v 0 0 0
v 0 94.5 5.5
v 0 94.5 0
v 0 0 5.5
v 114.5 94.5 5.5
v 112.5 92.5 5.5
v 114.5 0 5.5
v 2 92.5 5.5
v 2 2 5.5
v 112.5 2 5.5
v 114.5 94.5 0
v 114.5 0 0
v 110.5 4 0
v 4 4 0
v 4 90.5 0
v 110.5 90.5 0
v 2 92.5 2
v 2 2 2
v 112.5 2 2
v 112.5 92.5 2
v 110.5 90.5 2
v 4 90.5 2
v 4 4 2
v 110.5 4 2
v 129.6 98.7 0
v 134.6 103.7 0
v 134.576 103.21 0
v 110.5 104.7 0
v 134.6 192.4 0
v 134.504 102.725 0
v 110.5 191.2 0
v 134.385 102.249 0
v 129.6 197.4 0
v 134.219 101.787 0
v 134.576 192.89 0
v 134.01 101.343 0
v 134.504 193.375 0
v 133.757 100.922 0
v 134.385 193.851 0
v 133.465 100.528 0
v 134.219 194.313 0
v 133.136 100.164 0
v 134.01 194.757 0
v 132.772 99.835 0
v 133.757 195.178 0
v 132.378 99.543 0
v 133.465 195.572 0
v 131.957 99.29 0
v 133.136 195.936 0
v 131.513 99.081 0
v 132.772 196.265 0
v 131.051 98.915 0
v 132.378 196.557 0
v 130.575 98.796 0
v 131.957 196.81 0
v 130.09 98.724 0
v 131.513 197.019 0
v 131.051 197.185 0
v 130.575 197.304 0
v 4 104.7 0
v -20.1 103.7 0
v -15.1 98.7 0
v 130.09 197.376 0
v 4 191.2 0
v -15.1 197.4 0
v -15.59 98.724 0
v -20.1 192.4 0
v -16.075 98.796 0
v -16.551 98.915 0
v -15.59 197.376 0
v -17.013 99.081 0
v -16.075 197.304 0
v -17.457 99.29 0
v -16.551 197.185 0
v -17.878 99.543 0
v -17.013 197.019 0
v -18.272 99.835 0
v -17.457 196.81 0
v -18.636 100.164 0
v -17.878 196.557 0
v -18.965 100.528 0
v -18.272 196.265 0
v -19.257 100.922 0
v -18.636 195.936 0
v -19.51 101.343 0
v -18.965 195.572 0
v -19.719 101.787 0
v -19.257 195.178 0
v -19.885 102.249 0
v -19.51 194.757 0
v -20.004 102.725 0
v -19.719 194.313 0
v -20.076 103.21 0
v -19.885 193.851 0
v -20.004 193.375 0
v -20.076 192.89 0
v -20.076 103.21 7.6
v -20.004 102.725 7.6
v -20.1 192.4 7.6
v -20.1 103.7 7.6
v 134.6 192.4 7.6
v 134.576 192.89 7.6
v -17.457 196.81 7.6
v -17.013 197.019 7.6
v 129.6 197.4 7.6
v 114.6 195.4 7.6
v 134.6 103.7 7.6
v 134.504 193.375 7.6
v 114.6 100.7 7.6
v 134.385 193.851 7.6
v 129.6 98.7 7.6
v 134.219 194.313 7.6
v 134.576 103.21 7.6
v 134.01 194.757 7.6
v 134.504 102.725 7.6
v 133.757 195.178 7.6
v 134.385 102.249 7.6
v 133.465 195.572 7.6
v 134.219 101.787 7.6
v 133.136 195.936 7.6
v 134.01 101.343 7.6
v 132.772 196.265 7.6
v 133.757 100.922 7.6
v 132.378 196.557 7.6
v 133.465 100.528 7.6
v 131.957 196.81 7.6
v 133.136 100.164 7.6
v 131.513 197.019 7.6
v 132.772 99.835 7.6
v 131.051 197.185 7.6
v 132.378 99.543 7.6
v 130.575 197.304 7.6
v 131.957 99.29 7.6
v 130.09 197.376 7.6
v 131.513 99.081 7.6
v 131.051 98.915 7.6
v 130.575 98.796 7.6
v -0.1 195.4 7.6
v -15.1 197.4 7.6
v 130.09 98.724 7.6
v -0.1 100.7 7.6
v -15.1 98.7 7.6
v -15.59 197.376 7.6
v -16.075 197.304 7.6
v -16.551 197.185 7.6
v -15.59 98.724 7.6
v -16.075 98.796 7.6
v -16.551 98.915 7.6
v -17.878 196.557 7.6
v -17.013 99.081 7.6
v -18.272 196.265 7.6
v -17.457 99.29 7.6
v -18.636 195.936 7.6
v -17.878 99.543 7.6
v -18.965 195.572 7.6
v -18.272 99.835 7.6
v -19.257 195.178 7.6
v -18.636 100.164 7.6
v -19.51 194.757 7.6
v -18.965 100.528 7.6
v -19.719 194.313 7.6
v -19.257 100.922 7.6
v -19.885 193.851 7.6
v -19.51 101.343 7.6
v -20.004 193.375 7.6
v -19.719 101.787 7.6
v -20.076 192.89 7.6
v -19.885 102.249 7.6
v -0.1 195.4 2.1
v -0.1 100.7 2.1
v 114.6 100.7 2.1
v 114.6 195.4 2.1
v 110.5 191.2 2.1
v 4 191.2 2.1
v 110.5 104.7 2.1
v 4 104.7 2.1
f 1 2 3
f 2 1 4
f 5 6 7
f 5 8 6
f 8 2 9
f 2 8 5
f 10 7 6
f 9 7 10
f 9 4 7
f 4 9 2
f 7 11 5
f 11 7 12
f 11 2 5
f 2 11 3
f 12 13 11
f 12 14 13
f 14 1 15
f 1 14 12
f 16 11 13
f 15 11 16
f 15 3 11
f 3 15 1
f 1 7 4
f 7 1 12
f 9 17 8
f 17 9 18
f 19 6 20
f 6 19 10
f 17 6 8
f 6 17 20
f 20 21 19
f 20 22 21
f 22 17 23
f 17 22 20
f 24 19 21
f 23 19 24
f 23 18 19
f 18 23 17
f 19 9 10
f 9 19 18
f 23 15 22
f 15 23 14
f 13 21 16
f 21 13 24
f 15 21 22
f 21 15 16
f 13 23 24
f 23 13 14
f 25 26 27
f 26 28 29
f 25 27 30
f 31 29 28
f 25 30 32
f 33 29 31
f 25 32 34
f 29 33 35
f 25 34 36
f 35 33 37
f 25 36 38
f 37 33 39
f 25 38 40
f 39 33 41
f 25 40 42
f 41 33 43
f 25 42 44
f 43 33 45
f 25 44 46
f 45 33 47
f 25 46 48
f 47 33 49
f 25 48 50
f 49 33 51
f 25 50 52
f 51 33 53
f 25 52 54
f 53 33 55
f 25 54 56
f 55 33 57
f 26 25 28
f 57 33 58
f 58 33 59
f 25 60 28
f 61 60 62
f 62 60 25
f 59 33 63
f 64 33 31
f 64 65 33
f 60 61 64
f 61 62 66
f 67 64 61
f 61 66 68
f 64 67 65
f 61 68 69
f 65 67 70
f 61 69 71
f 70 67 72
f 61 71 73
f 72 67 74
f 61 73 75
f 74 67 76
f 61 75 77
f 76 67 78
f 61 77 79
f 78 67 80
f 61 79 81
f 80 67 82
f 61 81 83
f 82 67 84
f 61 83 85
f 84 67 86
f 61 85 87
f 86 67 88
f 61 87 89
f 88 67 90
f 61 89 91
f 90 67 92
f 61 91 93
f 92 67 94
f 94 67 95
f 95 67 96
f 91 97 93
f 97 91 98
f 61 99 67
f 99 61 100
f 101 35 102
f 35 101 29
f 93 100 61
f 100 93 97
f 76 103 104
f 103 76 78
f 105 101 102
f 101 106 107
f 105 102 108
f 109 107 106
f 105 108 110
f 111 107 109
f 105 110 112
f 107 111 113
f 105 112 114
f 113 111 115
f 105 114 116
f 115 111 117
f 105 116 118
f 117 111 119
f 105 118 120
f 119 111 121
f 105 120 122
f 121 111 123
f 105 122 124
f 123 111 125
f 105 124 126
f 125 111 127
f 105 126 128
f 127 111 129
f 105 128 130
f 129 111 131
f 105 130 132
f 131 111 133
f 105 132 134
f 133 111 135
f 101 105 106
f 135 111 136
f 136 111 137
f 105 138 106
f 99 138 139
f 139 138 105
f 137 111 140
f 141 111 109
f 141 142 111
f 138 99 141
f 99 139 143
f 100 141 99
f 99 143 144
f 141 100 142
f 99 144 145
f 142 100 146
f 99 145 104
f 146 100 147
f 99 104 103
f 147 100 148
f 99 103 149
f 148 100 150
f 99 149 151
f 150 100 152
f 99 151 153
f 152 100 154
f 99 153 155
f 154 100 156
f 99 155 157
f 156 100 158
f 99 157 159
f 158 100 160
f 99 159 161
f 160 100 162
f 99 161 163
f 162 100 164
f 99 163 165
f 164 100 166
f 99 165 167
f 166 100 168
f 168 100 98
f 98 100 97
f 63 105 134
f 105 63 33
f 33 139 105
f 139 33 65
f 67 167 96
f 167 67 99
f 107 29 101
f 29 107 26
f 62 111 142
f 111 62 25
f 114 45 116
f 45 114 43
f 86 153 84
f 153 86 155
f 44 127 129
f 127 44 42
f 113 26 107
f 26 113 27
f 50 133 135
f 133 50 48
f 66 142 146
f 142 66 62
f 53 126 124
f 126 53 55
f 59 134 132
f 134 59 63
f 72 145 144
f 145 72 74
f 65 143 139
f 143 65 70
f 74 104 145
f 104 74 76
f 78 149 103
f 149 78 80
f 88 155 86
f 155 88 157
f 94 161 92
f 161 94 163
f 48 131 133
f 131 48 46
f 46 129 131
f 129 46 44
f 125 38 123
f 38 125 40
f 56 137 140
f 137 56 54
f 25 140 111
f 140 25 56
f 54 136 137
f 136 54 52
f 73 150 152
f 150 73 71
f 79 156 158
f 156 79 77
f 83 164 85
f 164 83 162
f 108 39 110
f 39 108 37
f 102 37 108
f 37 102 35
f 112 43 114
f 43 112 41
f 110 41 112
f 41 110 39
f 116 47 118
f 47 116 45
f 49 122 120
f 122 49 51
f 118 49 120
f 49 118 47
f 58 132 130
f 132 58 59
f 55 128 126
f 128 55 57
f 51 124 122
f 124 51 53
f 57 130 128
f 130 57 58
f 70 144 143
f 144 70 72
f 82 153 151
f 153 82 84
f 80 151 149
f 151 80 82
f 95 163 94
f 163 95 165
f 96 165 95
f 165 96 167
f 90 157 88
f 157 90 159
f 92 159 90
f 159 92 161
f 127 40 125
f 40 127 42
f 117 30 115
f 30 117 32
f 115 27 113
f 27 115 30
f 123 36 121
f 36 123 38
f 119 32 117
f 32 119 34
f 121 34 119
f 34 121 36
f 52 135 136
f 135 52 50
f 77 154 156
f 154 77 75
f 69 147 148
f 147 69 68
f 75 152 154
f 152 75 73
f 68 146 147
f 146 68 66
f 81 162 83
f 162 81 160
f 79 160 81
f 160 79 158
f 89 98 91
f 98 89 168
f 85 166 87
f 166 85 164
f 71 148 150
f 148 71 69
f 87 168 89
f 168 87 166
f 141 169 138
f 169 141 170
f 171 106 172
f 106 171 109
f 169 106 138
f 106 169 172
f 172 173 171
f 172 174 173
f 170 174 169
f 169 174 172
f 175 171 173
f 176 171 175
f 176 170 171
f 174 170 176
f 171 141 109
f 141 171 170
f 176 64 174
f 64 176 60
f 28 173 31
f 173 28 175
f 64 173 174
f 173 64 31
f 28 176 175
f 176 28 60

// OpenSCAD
// file: rounded_box.scad
/**
 * Small "library" for creating boxes with rounded edges.
 *
 * Hendrik Busch, 2017-18 (https://github.com/hmbusch)
 *
 */
 
/**
 * Creates a 2D-shape of a box with the given dimensions and rounded edges. 
 * Be sure to increase $fn for nicer edges.
 *
 * @param width
 *          the desired width of the box (default is 10mm)
 * @param depth
 *          the desired depth of the box (default is 10mm)
 * @param height
 *          the desired height of the box (default is 10mm)
 * @param edge_radius
 *          the radius of all the edges on the xy-plane (default is 2mm)
 */  
module box_with_round_edges_2d(width = 10, depth = 10, edge_radius = 2) {
    ed = edge_radius * 2;
    translate([edge_radius, edge_radius, 0]) hull() {
        circle(d = ed);
        translate([width - ed, 0, 0]) circle(d = ed);
        translate([0, depth - ed, 0]) circle(d = ed);
        translate([width - ed, depth - ed, 0]) circle(d = ed);    
    }
}
 
/**
 * Call to create a box with rounded edges (edges will be round on one plane only).
 * Be sure to increase $fn for nicer edges.
 * 
 * @param width
 *          the desired width of the box (default is 10mm)
 * @param depth
 *          the desired depth of the box (default is 10mm)
 * @param height
 *          the desired height of the box (default is 10mm)
 * @param edge_radius
 *          the radius of all the edges on the xy-plane (default is 2mm)
 *
 */
module box_with_round_edges_3d(width = 10, depth = 10, height = 10, edge_radius = 2) {
	linear_extrude(height = height) {
		box_with_round_edges_2d(width, depth, edge_radius);
	}
}

/**
 * Call to create a box with rounded edges (edges will be round on one plane only).
 * Be sure to increase $fn for nicer edges. This module has inputs that resemble
 * those of cube() so that it can act as a drop-in replacement.
 * 
 * @param dimensions
 *          3-value-array with x, y and z dimensions (default is 10x10x10mm).
 * @param edge_radius
 *          the radius of all the edges on the xy-plane (default is 2mm)
 *
 */
module box_with_round_edges_3d(dimensions = [10, 10, 10], edge_radius = 2) {
	linear_extrude(height = dimensions[2]) {
		box_with_round_edges_2d(dimensions[0], dimensions[1], edge_radius);
	}
}
// main file
include <rounded_box.scad>;

Glass_X = 110.5;
Glass_Y = 90.5;
Glass_Z = 3.5;

Wall_Thickness = 2;
Handle_Width = 20;

Holder_X = Glass_X + 2 * Wall_Thickness;
Holder_Y = Glass_Y + 2 * Wall_Thickness;
Holder_Z = Glass_Z + Wall_Thickness;

Cover_Airgap = 0.1;

f = 0.01;
df = 2 * f;

$fn = 64;

module glass() {
    color("brown") #cube([Glass_X, Glass_Y, Glass_Z]);
}

module frame() {
    difference() {
        cube([Holder_X, Holder_Y, Holder_Z]);
        translate([Wall_Thickness, Wall_Thickness, Wall_Thickness])
            cube([Glass_X, Glass_Y, Glass_Z + f]);
        translate([Wall_Thickness * 2, Wall_Thickness * 2, -f])
            cube([Glass_X - 2 * Wall_Thickness, Glass_Y - 2 * Wall_Thickness, Wall_Thickness + df]);
    }
}

Cover_X = Holder_X + 2 * Cover_Airgap + 2 * Handle_Width;
Cover_Y = Holder_Y + 2 * Cover_Airgap + 2 * Wall_Thickness;
Cover_Z = Holder_Z + Cover_Airgap + Wall_Thickness;

module cover_with_handles() {
    difference() {
        box_with_round_edges_3d([Cover_X, Cover_Y, Cover_Z], edge_radius = 5);
        translate([Handle_Width, Wall_Thickness, Wall_Thickness + Cover_Airgap])
            cube([Holder_X + 2 * Cover_Airgap, Holder_Y + 2 * Cover_Airgap, Holder_Z + f]);
        translate([Handle_Width + Cover_Airgap + 2* Wall_Thickness, 3 * Wall_Thickness, -f])
            cube([Holder_X - 4 * Wall_Thickness, Holder_Y - 4 * Wall_Thickness, Wall_Thickness + Cover_Airgap + df]);
    }
}


module assembly() {
    color("gray") frame();
    translate([Wall_Thickness, Wall_Thickness, Wall_Thickness])
        glass();

    translate([-Handle_Width, Cover_Y - Wall_Thickness, Holder_Z + Wall_Thickness])
        rotate([180, 0, 0])
            color("darkgray") cover_with_handles();
}

module print() {
    frame();    
    translate([(Holder_X - Cover_X)/2, Cover_Y, 0])
        cover_with_handles();
}

print();
